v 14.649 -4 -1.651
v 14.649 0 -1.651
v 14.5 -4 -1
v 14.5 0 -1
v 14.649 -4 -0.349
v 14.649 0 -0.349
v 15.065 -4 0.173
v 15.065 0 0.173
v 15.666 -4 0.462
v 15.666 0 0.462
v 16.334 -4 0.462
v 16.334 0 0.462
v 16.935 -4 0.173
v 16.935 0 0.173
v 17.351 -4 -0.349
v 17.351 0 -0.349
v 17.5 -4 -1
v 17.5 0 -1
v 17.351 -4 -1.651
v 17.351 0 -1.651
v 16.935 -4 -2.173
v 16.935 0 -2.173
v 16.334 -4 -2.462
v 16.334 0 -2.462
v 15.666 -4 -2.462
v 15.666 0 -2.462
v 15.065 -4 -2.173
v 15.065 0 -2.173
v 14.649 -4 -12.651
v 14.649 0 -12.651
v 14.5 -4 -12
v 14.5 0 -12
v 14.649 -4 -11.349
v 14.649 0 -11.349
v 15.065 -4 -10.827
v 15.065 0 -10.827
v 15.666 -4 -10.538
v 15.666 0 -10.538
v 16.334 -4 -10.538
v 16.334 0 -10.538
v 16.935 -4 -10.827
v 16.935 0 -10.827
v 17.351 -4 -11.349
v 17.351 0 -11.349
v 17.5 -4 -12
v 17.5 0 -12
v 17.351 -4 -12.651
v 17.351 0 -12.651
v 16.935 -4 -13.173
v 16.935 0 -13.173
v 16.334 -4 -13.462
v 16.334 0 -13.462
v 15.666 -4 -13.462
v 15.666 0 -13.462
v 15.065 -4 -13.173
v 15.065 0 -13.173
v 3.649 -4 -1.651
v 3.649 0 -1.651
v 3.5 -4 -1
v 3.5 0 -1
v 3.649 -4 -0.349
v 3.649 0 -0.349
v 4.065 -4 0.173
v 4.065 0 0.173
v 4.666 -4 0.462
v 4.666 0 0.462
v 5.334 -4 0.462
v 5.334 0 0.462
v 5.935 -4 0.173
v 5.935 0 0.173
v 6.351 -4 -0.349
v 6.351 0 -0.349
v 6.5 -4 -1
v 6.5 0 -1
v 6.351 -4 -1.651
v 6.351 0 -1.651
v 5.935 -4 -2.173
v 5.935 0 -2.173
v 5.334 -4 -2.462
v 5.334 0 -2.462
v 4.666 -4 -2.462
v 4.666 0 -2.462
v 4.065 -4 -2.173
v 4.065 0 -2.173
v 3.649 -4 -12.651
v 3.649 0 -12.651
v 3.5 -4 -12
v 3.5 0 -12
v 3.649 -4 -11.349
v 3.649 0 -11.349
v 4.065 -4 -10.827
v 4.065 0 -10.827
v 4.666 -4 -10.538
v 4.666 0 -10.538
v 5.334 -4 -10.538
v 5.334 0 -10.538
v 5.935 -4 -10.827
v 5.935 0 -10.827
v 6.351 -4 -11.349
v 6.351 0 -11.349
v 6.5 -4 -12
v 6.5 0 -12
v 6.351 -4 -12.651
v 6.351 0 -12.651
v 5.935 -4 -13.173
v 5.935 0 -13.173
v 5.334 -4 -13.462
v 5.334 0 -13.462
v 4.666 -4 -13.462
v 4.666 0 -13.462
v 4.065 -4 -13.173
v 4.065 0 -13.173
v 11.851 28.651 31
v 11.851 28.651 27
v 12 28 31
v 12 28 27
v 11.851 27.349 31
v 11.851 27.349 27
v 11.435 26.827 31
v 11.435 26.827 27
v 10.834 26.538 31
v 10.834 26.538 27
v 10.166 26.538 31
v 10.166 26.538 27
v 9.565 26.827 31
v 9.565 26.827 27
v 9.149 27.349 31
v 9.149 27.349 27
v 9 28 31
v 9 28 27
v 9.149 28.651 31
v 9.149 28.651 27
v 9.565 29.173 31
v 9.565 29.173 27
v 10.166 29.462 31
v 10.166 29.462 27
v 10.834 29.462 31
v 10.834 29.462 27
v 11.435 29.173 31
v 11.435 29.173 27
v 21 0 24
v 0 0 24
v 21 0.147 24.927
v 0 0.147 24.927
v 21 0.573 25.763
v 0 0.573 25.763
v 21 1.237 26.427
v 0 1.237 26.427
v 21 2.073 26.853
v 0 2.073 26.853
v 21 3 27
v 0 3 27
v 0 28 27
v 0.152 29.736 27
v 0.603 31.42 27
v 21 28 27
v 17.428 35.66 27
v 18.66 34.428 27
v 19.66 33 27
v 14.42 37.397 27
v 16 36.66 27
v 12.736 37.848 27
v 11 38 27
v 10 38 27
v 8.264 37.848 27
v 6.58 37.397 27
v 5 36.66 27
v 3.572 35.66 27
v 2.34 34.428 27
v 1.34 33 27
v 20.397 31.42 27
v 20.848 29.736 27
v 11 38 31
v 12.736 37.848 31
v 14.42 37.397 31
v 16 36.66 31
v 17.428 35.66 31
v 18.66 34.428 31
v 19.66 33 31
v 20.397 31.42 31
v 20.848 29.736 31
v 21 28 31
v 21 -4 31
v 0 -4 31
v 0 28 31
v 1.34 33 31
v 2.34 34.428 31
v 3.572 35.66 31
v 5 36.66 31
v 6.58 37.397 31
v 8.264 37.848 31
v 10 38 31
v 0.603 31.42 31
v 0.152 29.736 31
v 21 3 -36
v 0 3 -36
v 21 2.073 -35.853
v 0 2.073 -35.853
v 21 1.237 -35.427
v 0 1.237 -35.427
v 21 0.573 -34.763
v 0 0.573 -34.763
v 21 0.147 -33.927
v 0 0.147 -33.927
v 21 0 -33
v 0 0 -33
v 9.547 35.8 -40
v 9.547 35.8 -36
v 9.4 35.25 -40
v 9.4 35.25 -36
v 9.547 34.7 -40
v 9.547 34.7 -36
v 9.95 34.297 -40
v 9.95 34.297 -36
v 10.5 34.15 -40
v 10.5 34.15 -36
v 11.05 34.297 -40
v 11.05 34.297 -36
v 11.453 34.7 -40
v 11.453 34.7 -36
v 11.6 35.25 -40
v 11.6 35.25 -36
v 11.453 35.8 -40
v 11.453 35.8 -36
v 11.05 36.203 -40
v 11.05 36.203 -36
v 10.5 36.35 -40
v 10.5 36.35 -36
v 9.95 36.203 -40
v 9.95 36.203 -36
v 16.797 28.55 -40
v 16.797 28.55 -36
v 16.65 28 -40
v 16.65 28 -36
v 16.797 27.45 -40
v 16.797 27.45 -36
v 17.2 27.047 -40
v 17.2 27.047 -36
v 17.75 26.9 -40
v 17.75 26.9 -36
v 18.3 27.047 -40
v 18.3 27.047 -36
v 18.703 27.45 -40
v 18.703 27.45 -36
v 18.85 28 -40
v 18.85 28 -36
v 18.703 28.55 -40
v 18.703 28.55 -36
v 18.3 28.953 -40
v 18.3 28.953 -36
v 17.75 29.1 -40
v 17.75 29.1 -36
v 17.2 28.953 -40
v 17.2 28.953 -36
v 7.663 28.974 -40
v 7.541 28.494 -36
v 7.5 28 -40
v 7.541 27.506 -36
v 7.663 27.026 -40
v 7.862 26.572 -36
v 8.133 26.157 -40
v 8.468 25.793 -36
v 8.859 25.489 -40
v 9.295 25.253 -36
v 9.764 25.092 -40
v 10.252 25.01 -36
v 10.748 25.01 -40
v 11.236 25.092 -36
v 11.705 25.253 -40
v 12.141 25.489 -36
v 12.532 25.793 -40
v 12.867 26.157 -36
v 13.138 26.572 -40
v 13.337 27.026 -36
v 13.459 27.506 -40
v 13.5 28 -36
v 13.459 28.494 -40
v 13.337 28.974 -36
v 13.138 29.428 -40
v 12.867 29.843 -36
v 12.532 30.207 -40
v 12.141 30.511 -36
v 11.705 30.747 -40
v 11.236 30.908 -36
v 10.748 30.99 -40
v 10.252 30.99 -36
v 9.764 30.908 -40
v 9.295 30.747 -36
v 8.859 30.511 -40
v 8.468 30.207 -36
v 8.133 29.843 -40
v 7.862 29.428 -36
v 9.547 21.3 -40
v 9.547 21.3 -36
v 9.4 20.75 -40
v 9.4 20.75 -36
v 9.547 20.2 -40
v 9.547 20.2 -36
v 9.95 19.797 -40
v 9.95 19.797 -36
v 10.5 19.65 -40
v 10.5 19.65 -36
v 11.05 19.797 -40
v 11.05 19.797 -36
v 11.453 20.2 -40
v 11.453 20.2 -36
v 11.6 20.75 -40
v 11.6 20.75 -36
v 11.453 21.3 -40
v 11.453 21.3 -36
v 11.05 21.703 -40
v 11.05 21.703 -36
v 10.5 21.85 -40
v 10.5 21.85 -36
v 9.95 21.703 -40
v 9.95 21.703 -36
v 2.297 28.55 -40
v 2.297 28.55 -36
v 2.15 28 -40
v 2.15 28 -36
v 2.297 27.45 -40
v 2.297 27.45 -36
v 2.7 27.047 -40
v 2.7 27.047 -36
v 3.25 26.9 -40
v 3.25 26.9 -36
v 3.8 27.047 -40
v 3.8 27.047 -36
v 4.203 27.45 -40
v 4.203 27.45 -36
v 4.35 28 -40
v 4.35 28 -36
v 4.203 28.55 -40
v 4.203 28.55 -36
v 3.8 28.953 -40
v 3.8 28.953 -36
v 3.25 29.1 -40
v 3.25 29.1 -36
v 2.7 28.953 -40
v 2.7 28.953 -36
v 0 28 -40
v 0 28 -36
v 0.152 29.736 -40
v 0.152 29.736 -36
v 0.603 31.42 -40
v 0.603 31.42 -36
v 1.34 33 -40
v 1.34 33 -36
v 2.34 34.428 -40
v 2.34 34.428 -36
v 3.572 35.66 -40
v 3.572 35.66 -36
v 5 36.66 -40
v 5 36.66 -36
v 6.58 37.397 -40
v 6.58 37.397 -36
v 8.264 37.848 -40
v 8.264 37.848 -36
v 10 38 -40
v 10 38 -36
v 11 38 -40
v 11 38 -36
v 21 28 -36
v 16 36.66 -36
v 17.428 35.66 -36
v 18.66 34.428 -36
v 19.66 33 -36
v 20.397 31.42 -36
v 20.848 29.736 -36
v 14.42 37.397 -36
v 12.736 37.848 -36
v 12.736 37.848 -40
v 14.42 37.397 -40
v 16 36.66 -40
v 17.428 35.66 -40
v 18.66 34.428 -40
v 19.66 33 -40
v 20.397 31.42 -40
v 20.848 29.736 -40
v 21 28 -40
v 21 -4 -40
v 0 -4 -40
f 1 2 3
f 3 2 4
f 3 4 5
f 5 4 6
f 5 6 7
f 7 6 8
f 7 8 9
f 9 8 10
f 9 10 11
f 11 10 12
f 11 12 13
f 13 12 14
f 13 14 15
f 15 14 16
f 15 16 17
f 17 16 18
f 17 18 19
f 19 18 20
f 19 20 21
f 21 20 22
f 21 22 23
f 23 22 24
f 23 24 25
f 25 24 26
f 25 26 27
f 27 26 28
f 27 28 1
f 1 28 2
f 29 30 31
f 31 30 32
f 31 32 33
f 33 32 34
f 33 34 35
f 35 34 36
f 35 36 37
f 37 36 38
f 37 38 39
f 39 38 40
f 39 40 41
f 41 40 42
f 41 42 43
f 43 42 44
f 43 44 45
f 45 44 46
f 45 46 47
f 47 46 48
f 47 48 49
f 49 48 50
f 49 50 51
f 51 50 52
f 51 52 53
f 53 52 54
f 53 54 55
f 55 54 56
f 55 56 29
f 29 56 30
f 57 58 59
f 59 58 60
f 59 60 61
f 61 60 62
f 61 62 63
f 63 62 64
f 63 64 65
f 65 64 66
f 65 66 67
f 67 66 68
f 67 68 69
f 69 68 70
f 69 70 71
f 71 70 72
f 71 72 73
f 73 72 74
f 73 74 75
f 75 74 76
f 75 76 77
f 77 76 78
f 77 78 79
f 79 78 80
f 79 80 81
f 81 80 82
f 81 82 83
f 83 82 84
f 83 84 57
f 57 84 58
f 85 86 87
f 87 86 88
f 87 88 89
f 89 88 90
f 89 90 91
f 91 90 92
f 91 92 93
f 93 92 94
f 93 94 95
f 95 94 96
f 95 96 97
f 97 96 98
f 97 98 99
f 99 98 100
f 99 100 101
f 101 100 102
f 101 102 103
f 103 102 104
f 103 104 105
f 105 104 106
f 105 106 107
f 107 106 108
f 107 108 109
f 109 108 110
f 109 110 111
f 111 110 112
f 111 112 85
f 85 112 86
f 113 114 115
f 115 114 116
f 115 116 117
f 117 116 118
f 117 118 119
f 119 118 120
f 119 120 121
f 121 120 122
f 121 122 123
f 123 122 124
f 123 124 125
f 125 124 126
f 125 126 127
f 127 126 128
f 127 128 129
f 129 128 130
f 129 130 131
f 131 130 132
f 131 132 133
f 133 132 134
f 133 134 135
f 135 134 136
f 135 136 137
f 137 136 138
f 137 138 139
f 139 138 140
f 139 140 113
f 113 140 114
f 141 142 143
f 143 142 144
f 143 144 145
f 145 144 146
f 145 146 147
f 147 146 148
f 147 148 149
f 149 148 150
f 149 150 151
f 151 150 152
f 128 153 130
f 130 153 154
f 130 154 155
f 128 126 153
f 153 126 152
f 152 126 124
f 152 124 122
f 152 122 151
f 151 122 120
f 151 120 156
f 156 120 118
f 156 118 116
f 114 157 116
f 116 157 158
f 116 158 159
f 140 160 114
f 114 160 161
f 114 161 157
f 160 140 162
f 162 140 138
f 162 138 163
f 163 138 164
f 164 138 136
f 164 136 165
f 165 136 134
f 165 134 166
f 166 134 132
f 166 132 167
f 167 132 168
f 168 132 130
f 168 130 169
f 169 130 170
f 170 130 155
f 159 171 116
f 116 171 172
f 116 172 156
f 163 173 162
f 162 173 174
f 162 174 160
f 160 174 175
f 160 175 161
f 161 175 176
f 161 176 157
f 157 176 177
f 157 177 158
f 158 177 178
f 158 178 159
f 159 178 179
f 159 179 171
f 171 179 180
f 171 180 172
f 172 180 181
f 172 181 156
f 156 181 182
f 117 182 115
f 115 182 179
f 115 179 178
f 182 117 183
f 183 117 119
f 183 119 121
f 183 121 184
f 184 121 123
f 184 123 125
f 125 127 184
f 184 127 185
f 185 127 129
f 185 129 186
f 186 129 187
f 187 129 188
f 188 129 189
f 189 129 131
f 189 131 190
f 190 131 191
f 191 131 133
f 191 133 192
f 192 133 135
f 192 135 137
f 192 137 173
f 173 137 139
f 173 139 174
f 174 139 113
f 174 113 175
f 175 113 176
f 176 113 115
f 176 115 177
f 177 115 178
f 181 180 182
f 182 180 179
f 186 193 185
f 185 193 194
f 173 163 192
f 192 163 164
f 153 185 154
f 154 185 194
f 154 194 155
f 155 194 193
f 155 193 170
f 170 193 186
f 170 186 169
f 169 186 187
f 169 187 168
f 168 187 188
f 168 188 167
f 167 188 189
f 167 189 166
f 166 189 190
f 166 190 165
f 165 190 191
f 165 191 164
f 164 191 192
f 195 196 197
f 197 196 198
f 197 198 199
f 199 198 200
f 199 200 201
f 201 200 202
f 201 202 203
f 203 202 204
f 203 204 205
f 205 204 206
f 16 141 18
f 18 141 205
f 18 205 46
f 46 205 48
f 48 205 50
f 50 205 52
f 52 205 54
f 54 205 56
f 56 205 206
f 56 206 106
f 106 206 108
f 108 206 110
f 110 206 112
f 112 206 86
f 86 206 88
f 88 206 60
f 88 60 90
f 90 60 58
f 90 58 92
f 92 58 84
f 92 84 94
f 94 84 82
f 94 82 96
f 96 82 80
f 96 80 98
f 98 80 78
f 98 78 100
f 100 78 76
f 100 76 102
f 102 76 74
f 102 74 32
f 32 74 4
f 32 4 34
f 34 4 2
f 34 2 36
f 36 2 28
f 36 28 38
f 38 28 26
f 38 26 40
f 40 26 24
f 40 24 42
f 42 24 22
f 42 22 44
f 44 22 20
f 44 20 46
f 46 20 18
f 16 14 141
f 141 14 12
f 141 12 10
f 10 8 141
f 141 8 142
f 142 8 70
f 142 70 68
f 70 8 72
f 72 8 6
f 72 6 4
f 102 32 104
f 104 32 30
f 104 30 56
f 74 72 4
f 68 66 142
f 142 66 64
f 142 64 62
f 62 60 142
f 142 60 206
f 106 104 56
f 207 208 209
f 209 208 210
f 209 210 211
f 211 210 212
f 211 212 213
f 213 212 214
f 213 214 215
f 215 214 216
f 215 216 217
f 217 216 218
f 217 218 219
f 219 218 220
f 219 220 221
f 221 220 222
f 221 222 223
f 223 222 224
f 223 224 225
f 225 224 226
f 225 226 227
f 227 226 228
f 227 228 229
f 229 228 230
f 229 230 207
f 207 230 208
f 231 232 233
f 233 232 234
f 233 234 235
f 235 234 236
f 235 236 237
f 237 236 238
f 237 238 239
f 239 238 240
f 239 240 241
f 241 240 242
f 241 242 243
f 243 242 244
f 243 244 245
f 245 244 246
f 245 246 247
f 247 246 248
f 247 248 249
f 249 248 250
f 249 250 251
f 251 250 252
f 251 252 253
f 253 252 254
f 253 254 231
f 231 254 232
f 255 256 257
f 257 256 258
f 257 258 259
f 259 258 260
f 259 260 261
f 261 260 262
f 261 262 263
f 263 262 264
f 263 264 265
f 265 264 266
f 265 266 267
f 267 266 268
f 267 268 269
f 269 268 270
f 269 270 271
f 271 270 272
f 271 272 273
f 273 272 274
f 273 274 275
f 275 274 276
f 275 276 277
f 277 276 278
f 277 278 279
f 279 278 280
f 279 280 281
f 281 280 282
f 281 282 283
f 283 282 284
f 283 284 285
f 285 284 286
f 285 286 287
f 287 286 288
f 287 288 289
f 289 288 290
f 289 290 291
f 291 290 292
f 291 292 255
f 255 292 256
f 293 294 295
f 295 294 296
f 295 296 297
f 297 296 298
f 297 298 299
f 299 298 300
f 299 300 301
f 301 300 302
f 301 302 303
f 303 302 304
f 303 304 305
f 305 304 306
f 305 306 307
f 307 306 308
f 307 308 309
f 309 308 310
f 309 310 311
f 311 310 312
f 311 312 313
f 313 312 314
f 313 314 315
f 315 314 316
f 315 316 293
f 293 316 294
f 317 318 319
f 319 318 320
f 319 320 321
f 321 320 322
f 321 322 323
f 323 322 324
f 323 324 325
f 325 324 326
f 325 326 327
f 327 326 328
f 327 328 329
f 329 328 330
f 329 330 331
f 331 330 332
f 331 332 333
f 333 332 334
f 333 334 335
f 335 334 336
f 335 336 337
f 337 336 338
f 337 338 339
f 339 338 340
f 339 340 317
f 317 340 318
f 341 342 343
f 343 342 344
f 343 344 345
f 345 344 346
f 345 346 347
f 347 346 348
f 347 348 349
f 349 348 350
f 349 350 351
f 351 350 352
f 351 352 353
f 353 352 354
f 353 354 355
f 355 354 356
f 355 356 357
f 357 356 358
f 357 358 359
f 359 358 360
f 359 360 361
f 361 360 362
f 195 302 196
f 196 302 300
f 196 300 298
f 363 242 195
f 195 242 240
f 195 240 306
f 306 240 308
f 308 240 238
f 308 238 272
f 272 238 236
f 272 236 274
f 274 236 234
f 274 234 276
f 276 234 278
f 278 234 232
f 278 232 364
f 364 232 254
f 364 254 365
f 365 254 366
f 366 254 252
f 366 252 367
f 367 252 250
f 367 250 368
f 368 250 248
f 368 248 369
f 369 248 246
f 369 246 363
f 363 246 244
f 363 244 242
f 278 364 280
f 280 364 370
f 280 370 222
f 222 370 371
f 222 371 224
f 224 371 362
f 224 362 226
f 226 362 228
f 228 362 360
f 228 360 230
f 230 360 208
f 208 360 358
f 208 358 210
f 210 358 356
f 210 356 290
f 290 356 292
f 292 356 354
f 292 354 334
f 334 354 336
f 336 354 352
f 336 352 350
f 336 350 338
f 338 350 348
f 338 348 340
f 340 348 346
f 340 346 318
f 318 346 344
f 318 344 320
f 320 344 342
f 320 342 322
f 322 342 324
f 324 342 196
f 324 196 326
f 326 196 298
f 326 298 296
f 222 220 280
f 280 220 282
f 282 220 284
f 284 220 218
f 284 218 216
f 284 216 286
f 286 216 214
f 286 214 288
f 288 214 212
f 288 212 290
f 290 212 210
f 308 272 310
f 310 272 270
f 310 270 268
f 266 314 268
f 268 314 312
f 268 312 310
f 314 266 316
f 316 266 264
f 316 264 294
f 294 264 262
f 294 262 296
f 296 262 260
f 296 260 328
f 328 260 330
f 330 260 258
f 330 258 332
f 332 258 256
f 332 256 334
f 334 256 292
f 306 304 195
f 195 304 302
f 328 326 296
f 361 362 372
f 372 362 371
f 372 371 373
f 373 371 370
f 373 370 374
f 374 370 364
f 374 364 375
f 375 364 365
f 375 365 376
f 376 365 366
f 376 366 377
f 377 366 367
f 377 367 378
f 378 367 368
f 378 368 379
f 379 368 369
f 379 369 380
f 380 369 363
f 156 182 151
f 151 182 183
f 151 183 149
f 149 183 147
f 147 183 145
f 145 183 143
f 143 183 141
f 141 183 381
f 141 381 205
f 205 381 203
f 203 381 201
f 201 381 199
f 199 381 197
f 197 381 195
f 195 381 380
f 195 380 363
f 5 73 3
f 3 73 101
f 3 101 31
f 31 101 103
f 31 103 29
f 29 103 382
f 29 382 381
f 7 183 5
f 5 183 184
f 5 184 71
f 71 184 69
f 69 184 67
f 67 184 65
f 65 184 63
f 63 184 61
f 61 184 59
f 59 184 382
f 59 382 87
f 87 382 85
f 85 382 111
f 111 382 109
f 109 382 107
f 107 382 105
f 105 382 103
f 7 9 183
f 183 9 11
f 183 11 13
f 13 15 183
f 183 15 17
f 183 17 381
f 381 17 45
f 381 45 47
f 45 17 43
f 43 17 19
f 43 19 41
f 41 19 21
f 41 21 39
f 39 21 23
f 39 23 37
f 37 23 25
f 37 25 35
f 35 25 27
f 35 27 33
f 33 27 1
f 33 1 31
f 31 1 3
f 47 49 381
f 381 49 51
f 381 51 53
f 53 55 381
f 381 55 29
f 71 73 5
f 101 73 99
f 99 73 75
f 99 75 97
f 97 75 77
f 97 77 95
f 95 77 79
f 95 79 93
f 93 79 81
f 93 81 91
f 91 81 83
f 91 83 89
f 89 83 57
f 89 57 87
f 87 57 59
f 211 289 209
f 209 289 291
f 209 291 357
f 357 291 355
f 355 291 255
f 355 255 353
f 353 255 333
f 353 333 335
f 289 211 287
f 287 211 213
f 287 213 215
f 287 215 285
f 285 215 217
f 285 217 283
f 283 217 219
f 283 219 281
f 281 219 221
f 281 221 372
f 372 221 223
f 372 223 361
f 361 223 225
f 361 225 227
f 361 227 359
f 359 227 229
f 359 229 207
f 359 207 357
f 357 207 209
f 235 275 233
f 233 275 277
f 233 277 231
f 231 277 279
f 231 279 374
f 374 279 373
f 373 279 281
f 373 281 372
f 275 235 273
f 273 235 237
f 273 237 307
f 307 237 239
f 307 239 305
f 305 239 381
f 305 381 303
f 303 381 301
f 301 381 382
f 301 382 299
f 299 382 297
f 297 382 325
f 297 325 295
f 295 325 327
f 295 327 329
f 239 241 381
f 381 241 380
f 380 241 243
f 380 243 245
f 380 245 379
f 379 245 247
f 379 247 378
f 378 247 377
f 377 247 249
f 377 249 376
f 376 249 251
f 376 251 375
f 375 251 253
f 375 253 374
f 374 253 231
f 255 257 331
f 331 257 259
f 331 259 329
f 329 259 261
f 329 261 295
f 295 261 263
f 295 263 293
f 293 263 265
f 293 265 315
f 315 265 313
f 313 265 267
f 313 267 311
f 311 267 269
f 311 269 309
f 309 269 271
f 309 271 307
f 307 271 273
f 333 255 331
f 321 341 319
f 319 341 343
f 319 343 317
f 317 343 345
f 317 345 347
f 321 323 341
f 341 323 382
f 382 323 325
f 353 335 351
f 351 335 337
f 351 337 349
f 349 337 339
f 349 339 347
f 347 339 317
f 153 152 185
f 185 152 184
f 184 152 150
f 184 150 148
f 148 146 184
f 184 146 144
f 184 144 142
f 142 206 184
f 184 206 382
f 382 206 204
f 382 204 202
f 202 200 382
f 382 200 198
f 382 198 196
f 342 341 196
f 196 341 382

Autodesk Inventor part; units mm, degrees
ref_plane "YZ Plane" through (0, 0, 0) normal (1, 0, 0) x (0, 1, 0)
ref_plane "XZ Plane" through (0, 0, 0) normal (0, 1, 0) x (-1, 0, 0)
ref_plane "XY Plane" through (0, 0, 0) normal (0, 0, 1) x (1, 0, 0)
sketch "Sketch1" plane through (0, 0, 0) normal (1, 0, 0) x (0, 1, 0)
  line L0 (0, 0) -> (0, -36)
  line L1 (0, -36) -> (38, -36)
  line L2 (0, 0) -> (-4, 0)
  line L3 (-4, 0) -> (-4, -40)
  line L4 (-4, -40) -> (38, -40)
  line L5 (38, -40) -> (38, -36)
  line L6 (0, 0) -> (-4, 0)
  line L7 (-4, 0) -> (-4, 27)
  line L8 (-4, 27) -> (0, 27)
  line L9 (0, 27) -> (0, 0)
  line L10 (-4, 27) -> (38, 27)
  line L11 (38, 27) -> (38, 31)
  line L12 (38, 31) -> (-4, 31)
  line L13 (-4, 31) -> (-4, 27)
  dimension "d0" = 36
  dimension "d1" = 38
  dimension "d2" = 4
  dimension "d3" = 40
  dimension "d28" = 27
  dimension "d29" = 42
  dimension "d30" = 4
extrude "Extrusion1" add sketch "Sketch1" along normal blind 21 contours L0 L1 L5 L4 L3 L2
fillet "Fillet1" radius 10 2 edges at (21, 38, -38) (0, 38, -38)
sketch "Sketch2" plane through (0, 0, -36) normal (0, 0, 1) x (1, 0, 0)
  arc A0 (10, 38) -> (0, 28) centre (10, 28) ccw projected
  line L0 (0, 28) -> (21, 28)
  line L1 (0, 28) -> (0, 0) projected
  line L2 (0, 28) -> (10.5, 28)
  circle A1 centre (10.5, 28) radius 8
  circle A2 centre (10.5, 28) radius 6.5
  line L3 (4, 28) -> (2.5, 28)
  circle A3 centre (3.25, 28) radius 1.1
  line L4 (17, 28) -> (18.5, 28)
  circle A4 centre (17.75, 28) radius 1.1
  line L5 (10.5, 28) -> (10.5, 36)
  line L6 (10.5, 28) -> (10.5, 20)
  line L7 (10.5, 36) -> (10.5, 34.5)
  line L8 (10.5, 20) -> (10.5, 21.5)
  circle A5 centre (10.5, 35.25) radius 1.1
  circle A6 centre (10.5, 20.75) radius 1.1
  circle A7 centre (10.5, 28) radius 3
  dimension "d7" = 10.5
  dimension "d8" = 16
  dimension "d9" = 13
  dimension "d10" = 2.2
  dimension "d11" = 2.2
  dimension "d12" = 2.2
  dimension "d13" = 2.2
  dimension "d14" = 6
extrude "Extrusion2" cut sketch "Sketch2" against normal blind 21 contours A2 A3 A1 L0 | A2 A3 L0 | L0 A1 A3 A2 | L0 A3 A2 | A1 A3 L0 | L0 A3 A1 | A7 L5 L0 | L0 L6 A7 | A5 A1 L5 A2 | A2 L5 A5 | A6 L6 A2 | A2 L6 A1 A6 | A5 A1 | A1 A6 | L5 A7 L0 | L0 A7 L6 | L5 A1 A5 A2 | A2 A5 L5 | L6 A6 A2 | A2 A6 A1 L6 | A4 L0 A1 | A1 L0 A2 A4 | A4 A2 L0 A1 | A1 L0 A4 | A4 A2 L0 | L0 A2 A4
fillet "Fillet2" radius 3 1 edges at (10.5, 0, -36)
extrude "Extrusion4" add sketch "Sketch1" along normal up to surface (21 mm away) contours L2 L7 L8 L9 | L8 L13 L12 L11 L10
fillet "Fillet3" radius 10 2 edges at (0, 38, 29) (21, 38, 29)
fillet "Fillet4" radius 3 1 edges at (10.5, 0, 27)
sketch "Sketch4" plane through (11, 38, 27) normal (0, 0, -1) x (-1, 0, 0)
  line L0 (-10, -10) -> (0.5, -10)
  circle A0 centre (0.5, -10) radius 1.5
  point P0 (11, -38)
  dimension "d35" = 10.5
  dimension "d36" = 3
extrude "Extrusion5" cut sketch "Sketch4" against normal blind 10
sketch "Sketch5" plane through (0, 0, -33) normal (0, 1, 0) x (1, 0, 0)
  line L0 (0, -57) -> (0, -60) projected
  line L1 (0, -57) -> (0, -32)
  line L2 (0, 0) -> (0, -57) projected
  line L3 (0, -32) -> (5, -32)
  line L4 (21, 0) -> (21, -57) projected
  line L5 (5, -32) -> (16, -32)
  line L6 (5, -32) -> (16, -32)
  line L7 (16, -32) -> (16, -21)
  line L8 (16, -21) -> (5, -21)
  line L9 (5, -21) -> (5, -32)
  circle A0 centre (5, -21) radius 1.5
  circle A1 centre (16, -21) radius 1.5
  circle A2 centre (5, -32) radius 1.5
  circle A3 centre (16, -32) radius 1.5
  point P0 (0, -33)
  dimension "d40" = 25
  dimension "d41" = 5
  dimension "d42" = 11
  dimension "d43" = 11
  dimension "d44" = 11
  dimension "d45" = 3
  dimension "d46" = 3
  dimension "d47" = 3
  dimension "d48" = 3
extrude "Extrusion6" cut sketch "Sketch5" against normal blind 10 contours A2 L9 L3 | L3 L5 A2 | L9 A2 L5 | A0 L8 L9 | L9 L8 A0 | A3 L7 L5 | L5 L7 A3 | A1 L7 L8 | L8 L7 A1
properties part number "L1"
